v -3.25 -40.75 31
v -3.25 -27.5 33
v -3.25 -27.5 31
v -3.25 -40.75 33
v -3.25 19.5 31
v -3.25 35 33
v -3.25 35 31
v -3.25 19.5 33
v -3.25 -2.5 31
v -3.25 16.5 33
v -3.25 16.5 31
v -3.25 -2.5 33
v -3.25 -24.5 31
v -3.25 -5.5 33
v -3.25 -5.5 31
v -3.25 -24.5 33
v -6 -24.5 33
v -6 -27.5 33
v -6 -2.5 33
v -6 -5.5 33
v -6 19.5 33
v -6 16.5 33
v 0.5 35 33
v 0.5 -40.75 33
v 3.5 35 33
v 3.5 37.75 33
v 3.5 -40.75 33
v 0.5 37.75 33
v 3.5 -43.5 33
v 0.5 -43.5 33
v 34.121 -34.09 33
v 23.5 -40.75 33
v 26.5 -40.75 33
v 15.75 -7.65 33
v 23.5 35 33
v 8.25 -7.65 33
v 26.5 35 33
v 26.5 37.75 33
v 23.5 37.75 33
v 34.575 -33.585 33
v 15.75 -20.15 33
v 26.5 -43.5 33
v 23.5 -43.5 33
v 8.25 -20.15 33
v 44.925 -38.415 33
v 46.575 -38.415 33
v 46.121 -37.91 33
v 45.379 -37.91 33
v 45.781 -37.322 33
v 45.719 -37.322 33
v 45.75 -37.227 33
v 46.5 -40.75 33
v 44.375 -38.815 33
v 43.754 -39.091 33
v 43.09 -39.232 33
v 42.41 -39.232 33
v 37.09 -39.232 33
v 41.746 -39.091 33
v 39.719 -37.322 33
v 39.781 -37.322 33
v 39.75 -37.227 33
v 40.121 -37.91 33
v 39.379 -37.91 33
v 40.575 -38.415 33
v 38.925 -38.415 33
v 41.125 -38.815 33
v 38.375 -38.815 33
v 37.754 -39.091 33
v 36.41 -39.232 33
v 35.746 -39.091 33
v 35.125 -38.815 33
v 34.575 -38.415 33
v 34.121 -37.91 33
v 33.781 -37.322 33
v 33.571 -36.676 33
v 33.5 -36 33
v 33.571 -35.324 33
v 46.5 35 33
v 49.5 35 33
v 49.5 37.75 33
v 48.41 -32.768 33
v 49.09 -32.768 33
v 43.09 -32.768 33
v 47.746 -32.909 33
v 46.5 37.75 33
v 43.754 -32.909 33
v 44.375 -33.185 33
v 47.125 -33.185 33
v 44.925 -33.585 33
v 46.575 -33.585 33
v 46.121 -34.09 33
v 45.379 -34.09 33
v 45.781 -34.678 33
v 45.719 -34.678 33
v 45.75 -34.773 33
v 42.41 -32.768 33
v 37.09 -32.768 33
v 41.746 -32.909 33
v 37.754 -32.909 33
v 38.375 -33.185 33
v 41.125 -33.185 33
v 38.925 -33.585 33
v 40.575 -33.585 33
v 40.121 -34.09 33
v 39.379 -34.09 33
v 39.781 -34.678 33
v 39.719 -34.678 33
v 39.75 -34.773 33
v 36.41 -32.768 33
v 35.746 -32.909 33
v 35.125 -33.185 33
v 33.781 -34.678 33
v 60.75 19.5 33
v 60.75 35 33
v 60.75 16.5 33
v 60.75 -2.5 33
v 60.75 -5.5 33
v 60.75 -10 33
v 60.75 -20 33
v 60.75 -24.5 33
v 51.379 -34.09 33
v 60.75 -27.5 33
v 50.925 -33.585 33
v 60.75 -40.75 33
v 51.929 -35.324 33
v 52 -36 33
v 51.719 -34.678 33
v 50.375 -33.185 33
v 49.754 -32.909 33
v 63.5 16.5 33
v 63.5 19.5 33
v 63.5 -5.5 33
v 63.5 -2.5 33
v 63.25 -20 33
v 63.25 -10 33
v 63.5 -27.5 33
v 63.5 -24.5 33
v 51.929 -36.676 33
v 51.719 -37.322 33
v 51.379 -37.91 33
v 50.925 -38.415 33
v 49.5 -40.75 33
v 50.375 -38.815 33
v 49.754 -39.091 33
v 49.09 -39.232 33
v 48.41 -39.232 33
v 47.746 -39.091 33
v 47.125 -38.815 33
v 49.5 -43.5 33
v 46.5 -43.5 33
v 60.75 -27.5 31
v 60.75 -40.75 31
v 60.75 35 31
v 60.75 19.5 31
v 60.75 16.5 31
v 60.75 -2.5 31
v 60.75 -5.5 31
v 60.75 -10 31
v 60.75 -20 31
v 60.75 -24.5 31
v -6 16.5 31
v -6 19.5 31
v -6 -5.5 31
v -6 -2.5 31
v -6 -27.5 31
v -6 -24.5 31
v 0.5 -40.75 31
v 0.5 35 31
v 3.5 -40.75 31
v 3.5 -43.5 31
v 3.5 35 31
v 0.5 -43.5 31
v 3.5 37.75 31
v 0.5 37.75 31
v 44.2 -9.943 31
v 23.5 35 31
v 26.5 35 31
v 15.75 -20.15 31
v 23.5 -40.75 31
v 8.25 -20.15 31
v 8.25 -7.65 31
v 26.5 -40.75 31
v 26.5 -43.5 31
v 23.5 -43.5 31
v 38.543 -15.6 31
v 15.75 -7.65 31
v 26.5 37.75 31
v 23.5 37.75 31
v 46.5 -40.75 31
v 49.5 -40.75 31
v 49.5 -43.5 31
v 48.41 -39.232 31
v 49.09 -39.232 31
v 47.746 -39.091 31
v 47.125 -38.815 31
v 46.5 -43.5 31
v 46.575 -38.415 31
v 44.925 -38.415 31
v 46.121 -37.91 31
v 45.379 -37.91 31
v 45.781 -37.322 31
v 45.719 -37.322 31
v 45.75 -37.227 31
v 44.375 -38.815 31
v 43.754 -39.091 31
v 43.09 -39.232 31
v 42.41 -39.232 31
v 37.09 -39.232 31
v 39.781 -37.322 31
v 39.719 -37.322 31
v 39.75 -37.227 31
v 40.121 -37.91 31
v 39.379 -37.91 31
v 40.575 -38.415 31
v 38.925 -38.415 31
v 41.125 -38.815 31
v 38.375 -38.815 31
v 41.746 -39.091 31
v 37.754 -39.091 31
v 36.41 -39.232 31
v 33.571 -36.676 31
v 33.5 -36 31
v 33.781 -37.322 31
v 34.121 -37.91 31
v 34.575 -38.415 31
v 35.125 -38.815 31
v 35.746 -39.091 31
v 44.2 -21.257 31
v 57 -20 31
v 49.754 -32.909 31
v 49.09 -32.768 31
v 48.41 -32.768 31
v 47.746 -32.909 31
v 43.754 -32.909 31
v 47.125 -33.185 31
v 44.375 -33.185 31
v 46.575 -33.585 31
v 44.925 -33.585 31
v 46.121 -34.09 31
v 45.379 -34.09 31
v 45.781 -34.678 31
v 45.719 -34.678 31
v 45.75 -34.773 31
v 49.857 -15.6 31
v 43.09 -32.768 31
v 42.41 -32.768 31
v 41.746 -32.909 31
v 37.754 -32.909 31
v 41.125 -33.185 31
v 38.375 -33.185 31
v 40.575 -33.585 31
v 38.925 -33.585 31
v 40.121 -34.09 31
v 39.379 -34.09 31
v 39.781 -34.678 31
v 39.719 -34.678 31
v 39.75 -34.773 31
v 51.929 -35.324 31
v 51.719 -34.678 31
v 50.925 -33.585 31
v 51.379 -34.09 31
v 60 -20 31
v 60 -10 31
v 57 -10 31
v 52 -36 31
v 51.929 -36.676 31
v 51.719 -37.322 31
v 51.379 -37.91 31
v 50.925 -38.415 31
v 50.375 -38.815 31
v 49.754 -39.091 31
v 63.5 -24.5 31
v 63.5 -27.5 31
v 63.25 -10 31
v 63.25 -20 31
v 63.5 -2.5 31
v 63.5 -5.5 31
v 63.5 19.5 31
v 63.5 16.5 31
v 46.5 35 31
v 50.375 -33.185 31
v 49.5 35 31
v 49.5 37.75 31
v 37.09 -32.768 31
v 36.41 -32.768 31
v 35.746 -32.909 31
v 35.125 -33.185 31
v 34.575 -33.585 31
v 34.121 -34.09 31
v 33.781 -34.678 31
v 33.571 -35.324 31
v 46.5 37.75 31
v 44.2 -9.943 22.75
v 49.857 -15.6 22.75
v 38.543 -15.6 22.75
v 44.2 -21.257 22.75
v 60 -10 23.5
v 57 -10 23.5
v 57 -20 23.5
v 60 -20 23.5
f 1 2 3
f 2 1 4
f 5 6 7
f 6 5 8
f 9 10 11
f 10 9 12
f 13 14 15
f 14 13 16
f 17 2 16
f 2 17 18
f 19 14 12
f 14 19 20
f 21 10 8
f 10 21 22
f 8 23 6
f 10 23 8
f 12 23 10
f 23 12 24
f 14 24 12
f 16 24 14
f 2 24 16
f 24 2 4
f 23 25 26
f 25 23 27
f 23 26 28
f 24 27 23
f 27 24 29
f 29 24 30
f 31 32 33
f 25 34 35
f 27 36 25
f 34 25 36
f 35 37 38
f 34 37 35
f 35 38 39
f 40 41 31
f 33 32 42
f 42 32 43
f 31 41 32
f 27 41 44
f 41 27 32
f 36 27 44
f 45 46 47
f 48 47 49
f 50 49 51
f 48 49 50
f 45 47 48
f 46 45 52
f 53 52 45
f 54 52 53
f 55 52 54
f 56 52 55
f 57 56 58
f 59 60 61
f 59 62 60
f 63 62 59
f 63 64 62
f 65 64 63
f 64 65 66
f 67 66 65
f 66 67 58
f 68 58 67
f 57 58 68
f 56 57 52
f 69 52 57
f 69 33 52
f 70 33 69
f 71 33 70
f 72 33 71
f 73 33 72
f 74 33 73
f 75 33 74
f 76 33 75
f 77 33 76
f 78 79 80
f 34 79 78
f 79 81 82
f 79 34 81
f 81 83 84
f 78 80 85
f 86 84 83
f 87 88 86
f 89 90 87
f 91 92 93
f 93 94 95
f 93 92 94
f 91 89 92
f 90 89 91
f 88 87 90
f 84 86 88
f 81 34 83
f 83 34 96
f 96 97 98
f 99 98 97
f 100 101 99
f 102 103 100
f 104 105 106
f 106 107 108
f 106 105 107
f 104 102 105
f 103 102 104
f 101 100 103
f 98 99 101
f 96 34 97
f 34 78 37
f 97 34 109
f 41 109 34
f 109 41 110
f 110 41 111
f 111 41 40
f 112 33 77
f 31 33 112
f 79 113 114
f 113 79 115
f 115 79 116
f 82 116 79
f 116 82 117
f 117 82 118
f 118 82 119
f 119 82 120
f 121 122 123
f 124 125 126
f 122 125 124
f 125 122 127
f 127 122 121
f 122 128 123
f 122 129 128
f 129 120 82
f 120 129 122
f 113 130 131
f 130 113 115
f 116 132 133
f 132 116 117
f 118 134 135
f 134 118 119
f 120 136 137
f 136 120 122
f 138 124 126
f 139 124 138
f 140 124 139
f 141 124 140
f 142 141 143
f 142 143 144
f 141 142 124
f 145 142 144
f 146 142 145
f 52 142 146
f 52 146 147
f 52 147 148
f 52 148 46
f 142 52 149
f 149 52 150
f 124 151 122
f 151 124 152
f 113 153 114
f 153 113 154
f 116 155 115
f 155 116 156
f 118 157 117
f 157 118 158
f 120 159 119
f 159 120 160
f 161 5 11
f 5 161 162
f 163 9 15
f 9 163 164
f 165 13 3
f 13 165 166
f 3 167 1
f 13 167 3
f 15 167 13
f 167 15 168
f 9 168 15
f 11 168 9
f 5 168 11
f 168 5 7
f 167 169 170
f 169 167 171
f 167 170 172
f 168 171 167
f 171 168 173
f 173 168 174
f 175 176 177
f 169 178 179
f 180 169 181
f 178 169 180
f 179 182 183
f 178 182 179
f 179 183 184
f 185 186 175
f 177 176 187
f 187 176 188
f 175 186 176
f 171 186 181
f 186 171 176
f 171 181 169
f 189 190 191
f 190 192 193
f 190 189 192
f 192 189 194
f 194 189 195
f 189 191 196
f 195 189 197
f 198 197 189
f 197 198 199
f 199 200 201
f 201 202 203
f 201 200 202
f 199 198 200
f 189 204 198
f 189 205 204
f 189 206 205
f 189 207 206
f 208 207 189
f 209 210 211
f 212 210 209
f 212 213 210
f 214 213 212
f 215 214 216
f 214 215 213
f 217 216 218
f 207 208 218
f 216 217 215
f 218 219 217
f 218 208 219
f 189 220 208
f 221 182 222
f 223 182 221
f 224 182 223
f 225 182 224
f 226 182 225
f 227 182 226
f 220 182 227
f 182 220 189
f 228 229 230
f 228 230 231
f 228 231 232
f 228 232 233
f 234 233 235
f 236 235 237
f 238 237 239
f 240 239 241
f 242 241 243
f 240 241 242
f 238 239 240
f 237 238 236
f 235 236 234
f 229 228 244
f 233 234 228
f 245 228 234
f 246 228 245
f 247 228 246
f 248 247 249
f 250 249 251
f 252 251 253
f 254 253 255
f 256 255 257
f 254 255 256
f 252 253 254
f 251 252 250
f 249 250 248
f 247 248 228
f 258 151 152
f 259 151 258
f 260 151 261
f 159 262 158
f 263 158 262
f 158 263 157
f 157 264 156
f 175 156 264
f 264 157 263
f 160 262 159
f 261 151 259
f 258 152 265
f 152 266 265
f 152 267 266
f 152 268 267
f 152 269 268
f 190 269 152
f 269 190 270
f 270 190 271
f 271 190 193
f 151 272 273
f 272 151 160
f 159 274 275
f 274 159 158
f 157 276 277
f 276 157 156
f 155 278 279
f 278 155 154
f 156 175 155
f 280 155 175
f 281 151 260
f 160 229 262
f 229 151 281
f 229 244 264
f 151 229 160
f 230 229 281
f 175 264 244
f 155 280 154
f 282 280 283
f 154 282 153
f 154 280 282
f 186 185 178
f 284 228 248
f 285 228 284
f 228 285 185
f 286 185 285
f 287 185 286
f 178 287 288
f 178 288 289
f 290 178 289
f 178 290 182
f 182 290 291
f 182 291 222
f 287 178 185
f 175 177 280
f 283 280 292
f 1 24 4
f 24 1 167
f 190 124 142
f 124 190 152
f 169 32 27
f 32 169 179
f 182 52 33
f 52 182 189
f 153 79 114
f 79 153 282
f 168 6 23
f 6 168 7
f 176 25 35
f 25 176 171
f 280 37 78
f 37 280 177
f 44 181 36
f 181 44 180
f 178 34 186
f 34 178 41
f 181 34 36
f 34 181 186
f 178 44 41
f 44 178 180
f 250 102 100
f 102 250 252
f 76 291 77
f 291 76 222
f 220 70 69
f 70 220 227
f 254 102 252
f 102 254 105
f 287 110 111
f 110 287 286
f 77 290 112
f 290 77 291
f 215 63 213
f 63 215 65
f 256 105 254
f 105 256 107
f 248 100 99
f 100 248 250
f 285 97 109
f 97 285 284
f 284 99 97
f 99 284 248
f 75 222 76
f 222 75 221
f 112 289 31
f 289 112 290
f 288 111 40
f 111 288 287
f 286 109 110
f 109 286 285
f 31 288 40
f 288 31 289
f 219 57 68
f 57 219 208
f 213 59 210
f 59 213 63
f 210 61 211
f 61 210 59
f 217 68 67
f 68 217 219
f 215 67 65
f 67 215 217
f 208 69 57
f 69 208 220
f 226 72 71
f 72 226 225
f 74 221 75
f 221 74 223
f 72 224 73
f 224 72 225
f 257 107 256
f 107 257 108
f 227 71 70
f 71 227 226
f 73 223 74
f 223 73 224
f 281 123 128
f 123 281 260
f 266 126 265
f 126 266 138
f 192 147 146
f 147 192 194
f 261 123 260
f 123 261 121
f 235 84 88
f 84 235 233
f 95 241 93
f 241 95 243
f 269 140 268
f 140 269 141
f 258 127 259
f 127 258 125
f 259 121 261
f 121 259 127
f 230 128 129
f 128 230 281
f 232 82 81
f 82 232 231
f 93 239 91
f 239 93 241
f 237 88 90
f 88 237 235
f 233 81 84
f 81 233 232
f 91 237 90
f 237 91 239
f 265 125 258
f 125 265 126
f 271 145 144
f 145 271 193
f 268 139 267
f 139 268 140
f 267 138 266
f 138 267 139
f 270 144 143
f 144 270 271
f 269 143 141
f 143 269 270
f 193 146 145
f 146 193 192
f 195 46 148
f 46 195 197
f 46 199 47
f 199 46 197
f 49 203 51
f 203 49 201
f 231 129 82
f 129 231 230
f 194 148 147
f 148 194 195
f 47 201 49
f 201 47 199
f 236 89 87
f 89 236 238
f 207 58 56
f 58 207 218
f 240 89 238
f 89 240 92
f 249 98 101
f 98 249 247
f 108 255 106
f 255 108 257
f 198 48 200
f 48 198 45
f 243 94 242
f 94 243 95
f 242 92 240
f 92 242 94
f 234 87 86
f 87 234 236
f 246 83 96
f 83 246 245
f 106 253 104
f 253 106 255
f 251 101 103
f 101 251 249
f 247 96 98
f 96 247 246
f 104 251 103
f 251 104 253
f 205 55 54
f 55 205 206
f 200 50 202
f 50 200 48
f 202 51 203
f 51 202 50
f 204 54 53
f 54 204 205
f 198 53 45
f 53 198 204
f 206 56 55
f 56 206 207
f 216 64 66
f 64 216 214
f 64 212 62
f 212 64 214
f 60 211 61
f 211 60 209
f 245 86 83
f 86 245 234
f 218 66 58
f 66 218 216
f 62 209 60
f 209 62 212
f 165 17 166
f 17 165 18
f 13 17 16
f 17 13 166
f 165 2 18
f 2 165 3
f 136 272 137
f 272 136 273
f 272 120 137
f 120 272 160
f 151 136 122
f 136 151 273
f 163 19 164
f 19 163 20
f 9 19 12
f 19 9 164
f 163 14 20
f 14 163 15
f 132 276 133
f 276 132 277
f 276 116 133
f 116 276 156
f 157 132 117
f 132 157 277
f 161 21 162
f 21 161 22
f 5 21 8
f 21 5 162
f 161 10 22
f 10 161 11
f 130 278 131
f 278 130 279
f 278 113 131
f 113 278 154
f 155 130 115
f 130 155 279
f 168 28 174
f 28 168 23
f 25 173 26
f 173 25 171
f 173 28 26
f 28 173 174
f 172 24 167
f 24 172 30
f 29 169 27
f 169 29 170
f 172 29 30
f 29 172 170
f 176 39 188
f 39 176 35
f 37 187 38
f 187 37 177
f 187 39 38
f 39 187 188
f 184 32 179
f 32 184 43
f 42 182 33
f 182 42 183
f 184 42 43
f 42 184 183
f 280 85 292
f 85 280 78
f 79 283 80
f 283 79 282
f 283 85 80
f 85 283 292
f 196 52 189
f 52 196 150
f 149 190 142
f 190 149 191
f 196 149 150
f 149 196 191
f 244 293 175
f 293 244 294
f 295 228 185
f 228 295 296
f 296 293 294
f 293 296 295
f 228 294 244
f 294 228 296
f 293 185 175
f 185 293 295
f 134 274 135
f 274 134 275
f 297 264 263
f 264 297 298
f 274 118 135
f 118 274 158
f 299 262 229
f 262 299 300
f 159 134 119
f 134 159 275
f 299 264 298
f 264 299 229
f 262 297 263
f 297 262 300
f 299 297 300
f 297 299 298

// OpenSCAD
// Juste pour visualiser le capteur. Pas à imprimer
module mh(){
    difference() {
        color("red") {
            cube([57.5, 34.7, 2]);
            cube([12.05, 4.7, 5]);
            translate([0,10,0]) cube([57.5, 15.15, 14.6]);
        }
        translate([54, 2.5, -1]) cylinder(r=1.25, h=10);
        translate([54, 31.5, -1]) cylinder(r=1.25, h=10);
        translate([9.5, 31.5, -1]) cylinder(r=1.25, h=10);
    }
    
    translate([16, -40.5, 4]) color("green") cube([45.3, 37.1, 1]);
}


module supportMh(){
    translate([-6, -43.5, -4]) cube([69.5, 81.2, 2]);
    translate([15, -3, -4]) cube([45.5, 2.5, 16]);
    translate([-3, -3, -4]) cube([2.5, 6, 6]);
    translate([-3, 31.7, -4]) cube([2.5, 6, 6]);
    translate([58, -3, -4]) cube([2.5, 6, 6]);
    translate([58, 31.7, -4]) cube([2.5, 6, 6]);
    translate([-6, 35.2, -4]) cube([67, 2.5, 27]);
    translate([54.5, 2.25, -4]) cylinder(r=2, h=4);
    translate([54.5, 2.25, -4]) cylinder(r=1, h=8);
    translate([54, 31.5, -4]) cylinder(r=2, h=4);
    translate([54, 31.5, -4]) cylinder(r=1, h=8);
    translate([9.5, 31.5, -4]) cylinder(r=2, h=4);
    translate([9.5, 31.5, -4]) cylinder(r=1, h=8);
    translate([3, 8, -4]) cylinder(r=3, h=4);
    translate([-6, -43.5, -4]) cube([69.5, 2.5, 27]);
    translate([15, -19.4, -4]) cube([46.3, 11, 7.5]);
    translate([61, -41, -4]) cube([2.5, 78.7, 27]);
    translate([9, -19.4, -4]) cube([6, 11, 27]);
    translate([-6, -43.5, -4]) cube([2.5, 78.7, 27]);
    translate([41,-31,-4]) cube([4,4,7.5]);
    translate([24,-31,-4]) cube([4,4,7.5]);
    translate([15, -41, -4]) cube([46.3, 1, 7.5]);
}

module boite(){
    difference(){
        supportMh();
        translate([60.5, -21.5, 8]) cube([10, 12, 17]);
        translate([60.5, -34, 10]) cube([10, 6, 4]);
        for(x=[0:8:69]){
            translate([x, 30, -2]) cube([4, 10, 8]);
        }
        for(y=[-40:8:10]) translate([-7, y, -2]) cube([10, 4, 10]);
        for(x=[0:23:69]) {
            translate([x, 30, 21]) cube([4, 10, 4]);
            translate([x, -45, 21]) cube([4, 10, 4]);
        }
        for(y=[-28:22:35]){
            translate([-7, y, 21]) cube([10, 4, 4]);
            translate([57, y, 21]) cube([10, 4, 4]);            
        }
    }
}

module couvercle(){
    difference(){
        translate([-3.25,-40.75,21]) cube([64, 75.75, 2]);
        translate([8.25,-20.15, 20]) cube([7.5,12.5,5]);
        translate([36.75, -36, 20]) cylinder(r=3.25, h=10, $fn=30);
        translate([48.75, -36, 20]) cylinder(r=3.25, h=10, $fn=30);
        translate([42.75, -36, 20]) cylinder(r=3.25, h=10, $fn=30);
    }
    for(y=[-28:22:35]){
        translate([-6, y+0.5, 21]) cube([10, 3, 2]);
        translate([57, y+0.5, 21]) cube([6.5, 3, 2]);            
    }
   for(x=[0:23:60]) {
        translate([x+0.5, 30, 21]) cube([3, 7.75, 2]);
        translate([x+0.5, -43.5, 21]) cube([3, 3, 2]);
    } 
    translate([44.2,-15.6,0]) rotate([0,0,45]) translate([-4,-4,12.75]) cube([8,8,10]);
    translate([57.75, -20, 21]) cube([5.5, 10, 2]);
    translate([57, -20, 13.5]) cube([3, 10, 8]);
}

//boite();
translate([0,0,10]) color("orange") couvercle();

//translate([0,0,0]) mh();
